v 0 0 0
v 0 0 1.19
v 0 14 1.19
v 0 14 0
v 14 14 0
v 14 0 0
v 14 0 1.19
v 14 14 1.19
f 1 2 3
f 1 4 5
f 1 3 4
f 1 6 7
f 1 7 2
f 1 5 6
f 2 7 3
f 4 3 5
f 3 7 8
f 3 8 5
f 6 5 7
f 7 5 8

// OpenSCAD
/* Warning, this is a very basic generator with a lot of approximation 
input data : [TFBGA, 5MX, 14x14x1.19mm, 176, , A, C04-00515A]
generated by com.zoubworld.electronics.cad.model3d.Basic
Date : Sun Feb 15 10:50:48 CET 2026
*/

//body
color("black")
translate([0,0,0])
cube([14.0,14.0,1.19], center=false);
